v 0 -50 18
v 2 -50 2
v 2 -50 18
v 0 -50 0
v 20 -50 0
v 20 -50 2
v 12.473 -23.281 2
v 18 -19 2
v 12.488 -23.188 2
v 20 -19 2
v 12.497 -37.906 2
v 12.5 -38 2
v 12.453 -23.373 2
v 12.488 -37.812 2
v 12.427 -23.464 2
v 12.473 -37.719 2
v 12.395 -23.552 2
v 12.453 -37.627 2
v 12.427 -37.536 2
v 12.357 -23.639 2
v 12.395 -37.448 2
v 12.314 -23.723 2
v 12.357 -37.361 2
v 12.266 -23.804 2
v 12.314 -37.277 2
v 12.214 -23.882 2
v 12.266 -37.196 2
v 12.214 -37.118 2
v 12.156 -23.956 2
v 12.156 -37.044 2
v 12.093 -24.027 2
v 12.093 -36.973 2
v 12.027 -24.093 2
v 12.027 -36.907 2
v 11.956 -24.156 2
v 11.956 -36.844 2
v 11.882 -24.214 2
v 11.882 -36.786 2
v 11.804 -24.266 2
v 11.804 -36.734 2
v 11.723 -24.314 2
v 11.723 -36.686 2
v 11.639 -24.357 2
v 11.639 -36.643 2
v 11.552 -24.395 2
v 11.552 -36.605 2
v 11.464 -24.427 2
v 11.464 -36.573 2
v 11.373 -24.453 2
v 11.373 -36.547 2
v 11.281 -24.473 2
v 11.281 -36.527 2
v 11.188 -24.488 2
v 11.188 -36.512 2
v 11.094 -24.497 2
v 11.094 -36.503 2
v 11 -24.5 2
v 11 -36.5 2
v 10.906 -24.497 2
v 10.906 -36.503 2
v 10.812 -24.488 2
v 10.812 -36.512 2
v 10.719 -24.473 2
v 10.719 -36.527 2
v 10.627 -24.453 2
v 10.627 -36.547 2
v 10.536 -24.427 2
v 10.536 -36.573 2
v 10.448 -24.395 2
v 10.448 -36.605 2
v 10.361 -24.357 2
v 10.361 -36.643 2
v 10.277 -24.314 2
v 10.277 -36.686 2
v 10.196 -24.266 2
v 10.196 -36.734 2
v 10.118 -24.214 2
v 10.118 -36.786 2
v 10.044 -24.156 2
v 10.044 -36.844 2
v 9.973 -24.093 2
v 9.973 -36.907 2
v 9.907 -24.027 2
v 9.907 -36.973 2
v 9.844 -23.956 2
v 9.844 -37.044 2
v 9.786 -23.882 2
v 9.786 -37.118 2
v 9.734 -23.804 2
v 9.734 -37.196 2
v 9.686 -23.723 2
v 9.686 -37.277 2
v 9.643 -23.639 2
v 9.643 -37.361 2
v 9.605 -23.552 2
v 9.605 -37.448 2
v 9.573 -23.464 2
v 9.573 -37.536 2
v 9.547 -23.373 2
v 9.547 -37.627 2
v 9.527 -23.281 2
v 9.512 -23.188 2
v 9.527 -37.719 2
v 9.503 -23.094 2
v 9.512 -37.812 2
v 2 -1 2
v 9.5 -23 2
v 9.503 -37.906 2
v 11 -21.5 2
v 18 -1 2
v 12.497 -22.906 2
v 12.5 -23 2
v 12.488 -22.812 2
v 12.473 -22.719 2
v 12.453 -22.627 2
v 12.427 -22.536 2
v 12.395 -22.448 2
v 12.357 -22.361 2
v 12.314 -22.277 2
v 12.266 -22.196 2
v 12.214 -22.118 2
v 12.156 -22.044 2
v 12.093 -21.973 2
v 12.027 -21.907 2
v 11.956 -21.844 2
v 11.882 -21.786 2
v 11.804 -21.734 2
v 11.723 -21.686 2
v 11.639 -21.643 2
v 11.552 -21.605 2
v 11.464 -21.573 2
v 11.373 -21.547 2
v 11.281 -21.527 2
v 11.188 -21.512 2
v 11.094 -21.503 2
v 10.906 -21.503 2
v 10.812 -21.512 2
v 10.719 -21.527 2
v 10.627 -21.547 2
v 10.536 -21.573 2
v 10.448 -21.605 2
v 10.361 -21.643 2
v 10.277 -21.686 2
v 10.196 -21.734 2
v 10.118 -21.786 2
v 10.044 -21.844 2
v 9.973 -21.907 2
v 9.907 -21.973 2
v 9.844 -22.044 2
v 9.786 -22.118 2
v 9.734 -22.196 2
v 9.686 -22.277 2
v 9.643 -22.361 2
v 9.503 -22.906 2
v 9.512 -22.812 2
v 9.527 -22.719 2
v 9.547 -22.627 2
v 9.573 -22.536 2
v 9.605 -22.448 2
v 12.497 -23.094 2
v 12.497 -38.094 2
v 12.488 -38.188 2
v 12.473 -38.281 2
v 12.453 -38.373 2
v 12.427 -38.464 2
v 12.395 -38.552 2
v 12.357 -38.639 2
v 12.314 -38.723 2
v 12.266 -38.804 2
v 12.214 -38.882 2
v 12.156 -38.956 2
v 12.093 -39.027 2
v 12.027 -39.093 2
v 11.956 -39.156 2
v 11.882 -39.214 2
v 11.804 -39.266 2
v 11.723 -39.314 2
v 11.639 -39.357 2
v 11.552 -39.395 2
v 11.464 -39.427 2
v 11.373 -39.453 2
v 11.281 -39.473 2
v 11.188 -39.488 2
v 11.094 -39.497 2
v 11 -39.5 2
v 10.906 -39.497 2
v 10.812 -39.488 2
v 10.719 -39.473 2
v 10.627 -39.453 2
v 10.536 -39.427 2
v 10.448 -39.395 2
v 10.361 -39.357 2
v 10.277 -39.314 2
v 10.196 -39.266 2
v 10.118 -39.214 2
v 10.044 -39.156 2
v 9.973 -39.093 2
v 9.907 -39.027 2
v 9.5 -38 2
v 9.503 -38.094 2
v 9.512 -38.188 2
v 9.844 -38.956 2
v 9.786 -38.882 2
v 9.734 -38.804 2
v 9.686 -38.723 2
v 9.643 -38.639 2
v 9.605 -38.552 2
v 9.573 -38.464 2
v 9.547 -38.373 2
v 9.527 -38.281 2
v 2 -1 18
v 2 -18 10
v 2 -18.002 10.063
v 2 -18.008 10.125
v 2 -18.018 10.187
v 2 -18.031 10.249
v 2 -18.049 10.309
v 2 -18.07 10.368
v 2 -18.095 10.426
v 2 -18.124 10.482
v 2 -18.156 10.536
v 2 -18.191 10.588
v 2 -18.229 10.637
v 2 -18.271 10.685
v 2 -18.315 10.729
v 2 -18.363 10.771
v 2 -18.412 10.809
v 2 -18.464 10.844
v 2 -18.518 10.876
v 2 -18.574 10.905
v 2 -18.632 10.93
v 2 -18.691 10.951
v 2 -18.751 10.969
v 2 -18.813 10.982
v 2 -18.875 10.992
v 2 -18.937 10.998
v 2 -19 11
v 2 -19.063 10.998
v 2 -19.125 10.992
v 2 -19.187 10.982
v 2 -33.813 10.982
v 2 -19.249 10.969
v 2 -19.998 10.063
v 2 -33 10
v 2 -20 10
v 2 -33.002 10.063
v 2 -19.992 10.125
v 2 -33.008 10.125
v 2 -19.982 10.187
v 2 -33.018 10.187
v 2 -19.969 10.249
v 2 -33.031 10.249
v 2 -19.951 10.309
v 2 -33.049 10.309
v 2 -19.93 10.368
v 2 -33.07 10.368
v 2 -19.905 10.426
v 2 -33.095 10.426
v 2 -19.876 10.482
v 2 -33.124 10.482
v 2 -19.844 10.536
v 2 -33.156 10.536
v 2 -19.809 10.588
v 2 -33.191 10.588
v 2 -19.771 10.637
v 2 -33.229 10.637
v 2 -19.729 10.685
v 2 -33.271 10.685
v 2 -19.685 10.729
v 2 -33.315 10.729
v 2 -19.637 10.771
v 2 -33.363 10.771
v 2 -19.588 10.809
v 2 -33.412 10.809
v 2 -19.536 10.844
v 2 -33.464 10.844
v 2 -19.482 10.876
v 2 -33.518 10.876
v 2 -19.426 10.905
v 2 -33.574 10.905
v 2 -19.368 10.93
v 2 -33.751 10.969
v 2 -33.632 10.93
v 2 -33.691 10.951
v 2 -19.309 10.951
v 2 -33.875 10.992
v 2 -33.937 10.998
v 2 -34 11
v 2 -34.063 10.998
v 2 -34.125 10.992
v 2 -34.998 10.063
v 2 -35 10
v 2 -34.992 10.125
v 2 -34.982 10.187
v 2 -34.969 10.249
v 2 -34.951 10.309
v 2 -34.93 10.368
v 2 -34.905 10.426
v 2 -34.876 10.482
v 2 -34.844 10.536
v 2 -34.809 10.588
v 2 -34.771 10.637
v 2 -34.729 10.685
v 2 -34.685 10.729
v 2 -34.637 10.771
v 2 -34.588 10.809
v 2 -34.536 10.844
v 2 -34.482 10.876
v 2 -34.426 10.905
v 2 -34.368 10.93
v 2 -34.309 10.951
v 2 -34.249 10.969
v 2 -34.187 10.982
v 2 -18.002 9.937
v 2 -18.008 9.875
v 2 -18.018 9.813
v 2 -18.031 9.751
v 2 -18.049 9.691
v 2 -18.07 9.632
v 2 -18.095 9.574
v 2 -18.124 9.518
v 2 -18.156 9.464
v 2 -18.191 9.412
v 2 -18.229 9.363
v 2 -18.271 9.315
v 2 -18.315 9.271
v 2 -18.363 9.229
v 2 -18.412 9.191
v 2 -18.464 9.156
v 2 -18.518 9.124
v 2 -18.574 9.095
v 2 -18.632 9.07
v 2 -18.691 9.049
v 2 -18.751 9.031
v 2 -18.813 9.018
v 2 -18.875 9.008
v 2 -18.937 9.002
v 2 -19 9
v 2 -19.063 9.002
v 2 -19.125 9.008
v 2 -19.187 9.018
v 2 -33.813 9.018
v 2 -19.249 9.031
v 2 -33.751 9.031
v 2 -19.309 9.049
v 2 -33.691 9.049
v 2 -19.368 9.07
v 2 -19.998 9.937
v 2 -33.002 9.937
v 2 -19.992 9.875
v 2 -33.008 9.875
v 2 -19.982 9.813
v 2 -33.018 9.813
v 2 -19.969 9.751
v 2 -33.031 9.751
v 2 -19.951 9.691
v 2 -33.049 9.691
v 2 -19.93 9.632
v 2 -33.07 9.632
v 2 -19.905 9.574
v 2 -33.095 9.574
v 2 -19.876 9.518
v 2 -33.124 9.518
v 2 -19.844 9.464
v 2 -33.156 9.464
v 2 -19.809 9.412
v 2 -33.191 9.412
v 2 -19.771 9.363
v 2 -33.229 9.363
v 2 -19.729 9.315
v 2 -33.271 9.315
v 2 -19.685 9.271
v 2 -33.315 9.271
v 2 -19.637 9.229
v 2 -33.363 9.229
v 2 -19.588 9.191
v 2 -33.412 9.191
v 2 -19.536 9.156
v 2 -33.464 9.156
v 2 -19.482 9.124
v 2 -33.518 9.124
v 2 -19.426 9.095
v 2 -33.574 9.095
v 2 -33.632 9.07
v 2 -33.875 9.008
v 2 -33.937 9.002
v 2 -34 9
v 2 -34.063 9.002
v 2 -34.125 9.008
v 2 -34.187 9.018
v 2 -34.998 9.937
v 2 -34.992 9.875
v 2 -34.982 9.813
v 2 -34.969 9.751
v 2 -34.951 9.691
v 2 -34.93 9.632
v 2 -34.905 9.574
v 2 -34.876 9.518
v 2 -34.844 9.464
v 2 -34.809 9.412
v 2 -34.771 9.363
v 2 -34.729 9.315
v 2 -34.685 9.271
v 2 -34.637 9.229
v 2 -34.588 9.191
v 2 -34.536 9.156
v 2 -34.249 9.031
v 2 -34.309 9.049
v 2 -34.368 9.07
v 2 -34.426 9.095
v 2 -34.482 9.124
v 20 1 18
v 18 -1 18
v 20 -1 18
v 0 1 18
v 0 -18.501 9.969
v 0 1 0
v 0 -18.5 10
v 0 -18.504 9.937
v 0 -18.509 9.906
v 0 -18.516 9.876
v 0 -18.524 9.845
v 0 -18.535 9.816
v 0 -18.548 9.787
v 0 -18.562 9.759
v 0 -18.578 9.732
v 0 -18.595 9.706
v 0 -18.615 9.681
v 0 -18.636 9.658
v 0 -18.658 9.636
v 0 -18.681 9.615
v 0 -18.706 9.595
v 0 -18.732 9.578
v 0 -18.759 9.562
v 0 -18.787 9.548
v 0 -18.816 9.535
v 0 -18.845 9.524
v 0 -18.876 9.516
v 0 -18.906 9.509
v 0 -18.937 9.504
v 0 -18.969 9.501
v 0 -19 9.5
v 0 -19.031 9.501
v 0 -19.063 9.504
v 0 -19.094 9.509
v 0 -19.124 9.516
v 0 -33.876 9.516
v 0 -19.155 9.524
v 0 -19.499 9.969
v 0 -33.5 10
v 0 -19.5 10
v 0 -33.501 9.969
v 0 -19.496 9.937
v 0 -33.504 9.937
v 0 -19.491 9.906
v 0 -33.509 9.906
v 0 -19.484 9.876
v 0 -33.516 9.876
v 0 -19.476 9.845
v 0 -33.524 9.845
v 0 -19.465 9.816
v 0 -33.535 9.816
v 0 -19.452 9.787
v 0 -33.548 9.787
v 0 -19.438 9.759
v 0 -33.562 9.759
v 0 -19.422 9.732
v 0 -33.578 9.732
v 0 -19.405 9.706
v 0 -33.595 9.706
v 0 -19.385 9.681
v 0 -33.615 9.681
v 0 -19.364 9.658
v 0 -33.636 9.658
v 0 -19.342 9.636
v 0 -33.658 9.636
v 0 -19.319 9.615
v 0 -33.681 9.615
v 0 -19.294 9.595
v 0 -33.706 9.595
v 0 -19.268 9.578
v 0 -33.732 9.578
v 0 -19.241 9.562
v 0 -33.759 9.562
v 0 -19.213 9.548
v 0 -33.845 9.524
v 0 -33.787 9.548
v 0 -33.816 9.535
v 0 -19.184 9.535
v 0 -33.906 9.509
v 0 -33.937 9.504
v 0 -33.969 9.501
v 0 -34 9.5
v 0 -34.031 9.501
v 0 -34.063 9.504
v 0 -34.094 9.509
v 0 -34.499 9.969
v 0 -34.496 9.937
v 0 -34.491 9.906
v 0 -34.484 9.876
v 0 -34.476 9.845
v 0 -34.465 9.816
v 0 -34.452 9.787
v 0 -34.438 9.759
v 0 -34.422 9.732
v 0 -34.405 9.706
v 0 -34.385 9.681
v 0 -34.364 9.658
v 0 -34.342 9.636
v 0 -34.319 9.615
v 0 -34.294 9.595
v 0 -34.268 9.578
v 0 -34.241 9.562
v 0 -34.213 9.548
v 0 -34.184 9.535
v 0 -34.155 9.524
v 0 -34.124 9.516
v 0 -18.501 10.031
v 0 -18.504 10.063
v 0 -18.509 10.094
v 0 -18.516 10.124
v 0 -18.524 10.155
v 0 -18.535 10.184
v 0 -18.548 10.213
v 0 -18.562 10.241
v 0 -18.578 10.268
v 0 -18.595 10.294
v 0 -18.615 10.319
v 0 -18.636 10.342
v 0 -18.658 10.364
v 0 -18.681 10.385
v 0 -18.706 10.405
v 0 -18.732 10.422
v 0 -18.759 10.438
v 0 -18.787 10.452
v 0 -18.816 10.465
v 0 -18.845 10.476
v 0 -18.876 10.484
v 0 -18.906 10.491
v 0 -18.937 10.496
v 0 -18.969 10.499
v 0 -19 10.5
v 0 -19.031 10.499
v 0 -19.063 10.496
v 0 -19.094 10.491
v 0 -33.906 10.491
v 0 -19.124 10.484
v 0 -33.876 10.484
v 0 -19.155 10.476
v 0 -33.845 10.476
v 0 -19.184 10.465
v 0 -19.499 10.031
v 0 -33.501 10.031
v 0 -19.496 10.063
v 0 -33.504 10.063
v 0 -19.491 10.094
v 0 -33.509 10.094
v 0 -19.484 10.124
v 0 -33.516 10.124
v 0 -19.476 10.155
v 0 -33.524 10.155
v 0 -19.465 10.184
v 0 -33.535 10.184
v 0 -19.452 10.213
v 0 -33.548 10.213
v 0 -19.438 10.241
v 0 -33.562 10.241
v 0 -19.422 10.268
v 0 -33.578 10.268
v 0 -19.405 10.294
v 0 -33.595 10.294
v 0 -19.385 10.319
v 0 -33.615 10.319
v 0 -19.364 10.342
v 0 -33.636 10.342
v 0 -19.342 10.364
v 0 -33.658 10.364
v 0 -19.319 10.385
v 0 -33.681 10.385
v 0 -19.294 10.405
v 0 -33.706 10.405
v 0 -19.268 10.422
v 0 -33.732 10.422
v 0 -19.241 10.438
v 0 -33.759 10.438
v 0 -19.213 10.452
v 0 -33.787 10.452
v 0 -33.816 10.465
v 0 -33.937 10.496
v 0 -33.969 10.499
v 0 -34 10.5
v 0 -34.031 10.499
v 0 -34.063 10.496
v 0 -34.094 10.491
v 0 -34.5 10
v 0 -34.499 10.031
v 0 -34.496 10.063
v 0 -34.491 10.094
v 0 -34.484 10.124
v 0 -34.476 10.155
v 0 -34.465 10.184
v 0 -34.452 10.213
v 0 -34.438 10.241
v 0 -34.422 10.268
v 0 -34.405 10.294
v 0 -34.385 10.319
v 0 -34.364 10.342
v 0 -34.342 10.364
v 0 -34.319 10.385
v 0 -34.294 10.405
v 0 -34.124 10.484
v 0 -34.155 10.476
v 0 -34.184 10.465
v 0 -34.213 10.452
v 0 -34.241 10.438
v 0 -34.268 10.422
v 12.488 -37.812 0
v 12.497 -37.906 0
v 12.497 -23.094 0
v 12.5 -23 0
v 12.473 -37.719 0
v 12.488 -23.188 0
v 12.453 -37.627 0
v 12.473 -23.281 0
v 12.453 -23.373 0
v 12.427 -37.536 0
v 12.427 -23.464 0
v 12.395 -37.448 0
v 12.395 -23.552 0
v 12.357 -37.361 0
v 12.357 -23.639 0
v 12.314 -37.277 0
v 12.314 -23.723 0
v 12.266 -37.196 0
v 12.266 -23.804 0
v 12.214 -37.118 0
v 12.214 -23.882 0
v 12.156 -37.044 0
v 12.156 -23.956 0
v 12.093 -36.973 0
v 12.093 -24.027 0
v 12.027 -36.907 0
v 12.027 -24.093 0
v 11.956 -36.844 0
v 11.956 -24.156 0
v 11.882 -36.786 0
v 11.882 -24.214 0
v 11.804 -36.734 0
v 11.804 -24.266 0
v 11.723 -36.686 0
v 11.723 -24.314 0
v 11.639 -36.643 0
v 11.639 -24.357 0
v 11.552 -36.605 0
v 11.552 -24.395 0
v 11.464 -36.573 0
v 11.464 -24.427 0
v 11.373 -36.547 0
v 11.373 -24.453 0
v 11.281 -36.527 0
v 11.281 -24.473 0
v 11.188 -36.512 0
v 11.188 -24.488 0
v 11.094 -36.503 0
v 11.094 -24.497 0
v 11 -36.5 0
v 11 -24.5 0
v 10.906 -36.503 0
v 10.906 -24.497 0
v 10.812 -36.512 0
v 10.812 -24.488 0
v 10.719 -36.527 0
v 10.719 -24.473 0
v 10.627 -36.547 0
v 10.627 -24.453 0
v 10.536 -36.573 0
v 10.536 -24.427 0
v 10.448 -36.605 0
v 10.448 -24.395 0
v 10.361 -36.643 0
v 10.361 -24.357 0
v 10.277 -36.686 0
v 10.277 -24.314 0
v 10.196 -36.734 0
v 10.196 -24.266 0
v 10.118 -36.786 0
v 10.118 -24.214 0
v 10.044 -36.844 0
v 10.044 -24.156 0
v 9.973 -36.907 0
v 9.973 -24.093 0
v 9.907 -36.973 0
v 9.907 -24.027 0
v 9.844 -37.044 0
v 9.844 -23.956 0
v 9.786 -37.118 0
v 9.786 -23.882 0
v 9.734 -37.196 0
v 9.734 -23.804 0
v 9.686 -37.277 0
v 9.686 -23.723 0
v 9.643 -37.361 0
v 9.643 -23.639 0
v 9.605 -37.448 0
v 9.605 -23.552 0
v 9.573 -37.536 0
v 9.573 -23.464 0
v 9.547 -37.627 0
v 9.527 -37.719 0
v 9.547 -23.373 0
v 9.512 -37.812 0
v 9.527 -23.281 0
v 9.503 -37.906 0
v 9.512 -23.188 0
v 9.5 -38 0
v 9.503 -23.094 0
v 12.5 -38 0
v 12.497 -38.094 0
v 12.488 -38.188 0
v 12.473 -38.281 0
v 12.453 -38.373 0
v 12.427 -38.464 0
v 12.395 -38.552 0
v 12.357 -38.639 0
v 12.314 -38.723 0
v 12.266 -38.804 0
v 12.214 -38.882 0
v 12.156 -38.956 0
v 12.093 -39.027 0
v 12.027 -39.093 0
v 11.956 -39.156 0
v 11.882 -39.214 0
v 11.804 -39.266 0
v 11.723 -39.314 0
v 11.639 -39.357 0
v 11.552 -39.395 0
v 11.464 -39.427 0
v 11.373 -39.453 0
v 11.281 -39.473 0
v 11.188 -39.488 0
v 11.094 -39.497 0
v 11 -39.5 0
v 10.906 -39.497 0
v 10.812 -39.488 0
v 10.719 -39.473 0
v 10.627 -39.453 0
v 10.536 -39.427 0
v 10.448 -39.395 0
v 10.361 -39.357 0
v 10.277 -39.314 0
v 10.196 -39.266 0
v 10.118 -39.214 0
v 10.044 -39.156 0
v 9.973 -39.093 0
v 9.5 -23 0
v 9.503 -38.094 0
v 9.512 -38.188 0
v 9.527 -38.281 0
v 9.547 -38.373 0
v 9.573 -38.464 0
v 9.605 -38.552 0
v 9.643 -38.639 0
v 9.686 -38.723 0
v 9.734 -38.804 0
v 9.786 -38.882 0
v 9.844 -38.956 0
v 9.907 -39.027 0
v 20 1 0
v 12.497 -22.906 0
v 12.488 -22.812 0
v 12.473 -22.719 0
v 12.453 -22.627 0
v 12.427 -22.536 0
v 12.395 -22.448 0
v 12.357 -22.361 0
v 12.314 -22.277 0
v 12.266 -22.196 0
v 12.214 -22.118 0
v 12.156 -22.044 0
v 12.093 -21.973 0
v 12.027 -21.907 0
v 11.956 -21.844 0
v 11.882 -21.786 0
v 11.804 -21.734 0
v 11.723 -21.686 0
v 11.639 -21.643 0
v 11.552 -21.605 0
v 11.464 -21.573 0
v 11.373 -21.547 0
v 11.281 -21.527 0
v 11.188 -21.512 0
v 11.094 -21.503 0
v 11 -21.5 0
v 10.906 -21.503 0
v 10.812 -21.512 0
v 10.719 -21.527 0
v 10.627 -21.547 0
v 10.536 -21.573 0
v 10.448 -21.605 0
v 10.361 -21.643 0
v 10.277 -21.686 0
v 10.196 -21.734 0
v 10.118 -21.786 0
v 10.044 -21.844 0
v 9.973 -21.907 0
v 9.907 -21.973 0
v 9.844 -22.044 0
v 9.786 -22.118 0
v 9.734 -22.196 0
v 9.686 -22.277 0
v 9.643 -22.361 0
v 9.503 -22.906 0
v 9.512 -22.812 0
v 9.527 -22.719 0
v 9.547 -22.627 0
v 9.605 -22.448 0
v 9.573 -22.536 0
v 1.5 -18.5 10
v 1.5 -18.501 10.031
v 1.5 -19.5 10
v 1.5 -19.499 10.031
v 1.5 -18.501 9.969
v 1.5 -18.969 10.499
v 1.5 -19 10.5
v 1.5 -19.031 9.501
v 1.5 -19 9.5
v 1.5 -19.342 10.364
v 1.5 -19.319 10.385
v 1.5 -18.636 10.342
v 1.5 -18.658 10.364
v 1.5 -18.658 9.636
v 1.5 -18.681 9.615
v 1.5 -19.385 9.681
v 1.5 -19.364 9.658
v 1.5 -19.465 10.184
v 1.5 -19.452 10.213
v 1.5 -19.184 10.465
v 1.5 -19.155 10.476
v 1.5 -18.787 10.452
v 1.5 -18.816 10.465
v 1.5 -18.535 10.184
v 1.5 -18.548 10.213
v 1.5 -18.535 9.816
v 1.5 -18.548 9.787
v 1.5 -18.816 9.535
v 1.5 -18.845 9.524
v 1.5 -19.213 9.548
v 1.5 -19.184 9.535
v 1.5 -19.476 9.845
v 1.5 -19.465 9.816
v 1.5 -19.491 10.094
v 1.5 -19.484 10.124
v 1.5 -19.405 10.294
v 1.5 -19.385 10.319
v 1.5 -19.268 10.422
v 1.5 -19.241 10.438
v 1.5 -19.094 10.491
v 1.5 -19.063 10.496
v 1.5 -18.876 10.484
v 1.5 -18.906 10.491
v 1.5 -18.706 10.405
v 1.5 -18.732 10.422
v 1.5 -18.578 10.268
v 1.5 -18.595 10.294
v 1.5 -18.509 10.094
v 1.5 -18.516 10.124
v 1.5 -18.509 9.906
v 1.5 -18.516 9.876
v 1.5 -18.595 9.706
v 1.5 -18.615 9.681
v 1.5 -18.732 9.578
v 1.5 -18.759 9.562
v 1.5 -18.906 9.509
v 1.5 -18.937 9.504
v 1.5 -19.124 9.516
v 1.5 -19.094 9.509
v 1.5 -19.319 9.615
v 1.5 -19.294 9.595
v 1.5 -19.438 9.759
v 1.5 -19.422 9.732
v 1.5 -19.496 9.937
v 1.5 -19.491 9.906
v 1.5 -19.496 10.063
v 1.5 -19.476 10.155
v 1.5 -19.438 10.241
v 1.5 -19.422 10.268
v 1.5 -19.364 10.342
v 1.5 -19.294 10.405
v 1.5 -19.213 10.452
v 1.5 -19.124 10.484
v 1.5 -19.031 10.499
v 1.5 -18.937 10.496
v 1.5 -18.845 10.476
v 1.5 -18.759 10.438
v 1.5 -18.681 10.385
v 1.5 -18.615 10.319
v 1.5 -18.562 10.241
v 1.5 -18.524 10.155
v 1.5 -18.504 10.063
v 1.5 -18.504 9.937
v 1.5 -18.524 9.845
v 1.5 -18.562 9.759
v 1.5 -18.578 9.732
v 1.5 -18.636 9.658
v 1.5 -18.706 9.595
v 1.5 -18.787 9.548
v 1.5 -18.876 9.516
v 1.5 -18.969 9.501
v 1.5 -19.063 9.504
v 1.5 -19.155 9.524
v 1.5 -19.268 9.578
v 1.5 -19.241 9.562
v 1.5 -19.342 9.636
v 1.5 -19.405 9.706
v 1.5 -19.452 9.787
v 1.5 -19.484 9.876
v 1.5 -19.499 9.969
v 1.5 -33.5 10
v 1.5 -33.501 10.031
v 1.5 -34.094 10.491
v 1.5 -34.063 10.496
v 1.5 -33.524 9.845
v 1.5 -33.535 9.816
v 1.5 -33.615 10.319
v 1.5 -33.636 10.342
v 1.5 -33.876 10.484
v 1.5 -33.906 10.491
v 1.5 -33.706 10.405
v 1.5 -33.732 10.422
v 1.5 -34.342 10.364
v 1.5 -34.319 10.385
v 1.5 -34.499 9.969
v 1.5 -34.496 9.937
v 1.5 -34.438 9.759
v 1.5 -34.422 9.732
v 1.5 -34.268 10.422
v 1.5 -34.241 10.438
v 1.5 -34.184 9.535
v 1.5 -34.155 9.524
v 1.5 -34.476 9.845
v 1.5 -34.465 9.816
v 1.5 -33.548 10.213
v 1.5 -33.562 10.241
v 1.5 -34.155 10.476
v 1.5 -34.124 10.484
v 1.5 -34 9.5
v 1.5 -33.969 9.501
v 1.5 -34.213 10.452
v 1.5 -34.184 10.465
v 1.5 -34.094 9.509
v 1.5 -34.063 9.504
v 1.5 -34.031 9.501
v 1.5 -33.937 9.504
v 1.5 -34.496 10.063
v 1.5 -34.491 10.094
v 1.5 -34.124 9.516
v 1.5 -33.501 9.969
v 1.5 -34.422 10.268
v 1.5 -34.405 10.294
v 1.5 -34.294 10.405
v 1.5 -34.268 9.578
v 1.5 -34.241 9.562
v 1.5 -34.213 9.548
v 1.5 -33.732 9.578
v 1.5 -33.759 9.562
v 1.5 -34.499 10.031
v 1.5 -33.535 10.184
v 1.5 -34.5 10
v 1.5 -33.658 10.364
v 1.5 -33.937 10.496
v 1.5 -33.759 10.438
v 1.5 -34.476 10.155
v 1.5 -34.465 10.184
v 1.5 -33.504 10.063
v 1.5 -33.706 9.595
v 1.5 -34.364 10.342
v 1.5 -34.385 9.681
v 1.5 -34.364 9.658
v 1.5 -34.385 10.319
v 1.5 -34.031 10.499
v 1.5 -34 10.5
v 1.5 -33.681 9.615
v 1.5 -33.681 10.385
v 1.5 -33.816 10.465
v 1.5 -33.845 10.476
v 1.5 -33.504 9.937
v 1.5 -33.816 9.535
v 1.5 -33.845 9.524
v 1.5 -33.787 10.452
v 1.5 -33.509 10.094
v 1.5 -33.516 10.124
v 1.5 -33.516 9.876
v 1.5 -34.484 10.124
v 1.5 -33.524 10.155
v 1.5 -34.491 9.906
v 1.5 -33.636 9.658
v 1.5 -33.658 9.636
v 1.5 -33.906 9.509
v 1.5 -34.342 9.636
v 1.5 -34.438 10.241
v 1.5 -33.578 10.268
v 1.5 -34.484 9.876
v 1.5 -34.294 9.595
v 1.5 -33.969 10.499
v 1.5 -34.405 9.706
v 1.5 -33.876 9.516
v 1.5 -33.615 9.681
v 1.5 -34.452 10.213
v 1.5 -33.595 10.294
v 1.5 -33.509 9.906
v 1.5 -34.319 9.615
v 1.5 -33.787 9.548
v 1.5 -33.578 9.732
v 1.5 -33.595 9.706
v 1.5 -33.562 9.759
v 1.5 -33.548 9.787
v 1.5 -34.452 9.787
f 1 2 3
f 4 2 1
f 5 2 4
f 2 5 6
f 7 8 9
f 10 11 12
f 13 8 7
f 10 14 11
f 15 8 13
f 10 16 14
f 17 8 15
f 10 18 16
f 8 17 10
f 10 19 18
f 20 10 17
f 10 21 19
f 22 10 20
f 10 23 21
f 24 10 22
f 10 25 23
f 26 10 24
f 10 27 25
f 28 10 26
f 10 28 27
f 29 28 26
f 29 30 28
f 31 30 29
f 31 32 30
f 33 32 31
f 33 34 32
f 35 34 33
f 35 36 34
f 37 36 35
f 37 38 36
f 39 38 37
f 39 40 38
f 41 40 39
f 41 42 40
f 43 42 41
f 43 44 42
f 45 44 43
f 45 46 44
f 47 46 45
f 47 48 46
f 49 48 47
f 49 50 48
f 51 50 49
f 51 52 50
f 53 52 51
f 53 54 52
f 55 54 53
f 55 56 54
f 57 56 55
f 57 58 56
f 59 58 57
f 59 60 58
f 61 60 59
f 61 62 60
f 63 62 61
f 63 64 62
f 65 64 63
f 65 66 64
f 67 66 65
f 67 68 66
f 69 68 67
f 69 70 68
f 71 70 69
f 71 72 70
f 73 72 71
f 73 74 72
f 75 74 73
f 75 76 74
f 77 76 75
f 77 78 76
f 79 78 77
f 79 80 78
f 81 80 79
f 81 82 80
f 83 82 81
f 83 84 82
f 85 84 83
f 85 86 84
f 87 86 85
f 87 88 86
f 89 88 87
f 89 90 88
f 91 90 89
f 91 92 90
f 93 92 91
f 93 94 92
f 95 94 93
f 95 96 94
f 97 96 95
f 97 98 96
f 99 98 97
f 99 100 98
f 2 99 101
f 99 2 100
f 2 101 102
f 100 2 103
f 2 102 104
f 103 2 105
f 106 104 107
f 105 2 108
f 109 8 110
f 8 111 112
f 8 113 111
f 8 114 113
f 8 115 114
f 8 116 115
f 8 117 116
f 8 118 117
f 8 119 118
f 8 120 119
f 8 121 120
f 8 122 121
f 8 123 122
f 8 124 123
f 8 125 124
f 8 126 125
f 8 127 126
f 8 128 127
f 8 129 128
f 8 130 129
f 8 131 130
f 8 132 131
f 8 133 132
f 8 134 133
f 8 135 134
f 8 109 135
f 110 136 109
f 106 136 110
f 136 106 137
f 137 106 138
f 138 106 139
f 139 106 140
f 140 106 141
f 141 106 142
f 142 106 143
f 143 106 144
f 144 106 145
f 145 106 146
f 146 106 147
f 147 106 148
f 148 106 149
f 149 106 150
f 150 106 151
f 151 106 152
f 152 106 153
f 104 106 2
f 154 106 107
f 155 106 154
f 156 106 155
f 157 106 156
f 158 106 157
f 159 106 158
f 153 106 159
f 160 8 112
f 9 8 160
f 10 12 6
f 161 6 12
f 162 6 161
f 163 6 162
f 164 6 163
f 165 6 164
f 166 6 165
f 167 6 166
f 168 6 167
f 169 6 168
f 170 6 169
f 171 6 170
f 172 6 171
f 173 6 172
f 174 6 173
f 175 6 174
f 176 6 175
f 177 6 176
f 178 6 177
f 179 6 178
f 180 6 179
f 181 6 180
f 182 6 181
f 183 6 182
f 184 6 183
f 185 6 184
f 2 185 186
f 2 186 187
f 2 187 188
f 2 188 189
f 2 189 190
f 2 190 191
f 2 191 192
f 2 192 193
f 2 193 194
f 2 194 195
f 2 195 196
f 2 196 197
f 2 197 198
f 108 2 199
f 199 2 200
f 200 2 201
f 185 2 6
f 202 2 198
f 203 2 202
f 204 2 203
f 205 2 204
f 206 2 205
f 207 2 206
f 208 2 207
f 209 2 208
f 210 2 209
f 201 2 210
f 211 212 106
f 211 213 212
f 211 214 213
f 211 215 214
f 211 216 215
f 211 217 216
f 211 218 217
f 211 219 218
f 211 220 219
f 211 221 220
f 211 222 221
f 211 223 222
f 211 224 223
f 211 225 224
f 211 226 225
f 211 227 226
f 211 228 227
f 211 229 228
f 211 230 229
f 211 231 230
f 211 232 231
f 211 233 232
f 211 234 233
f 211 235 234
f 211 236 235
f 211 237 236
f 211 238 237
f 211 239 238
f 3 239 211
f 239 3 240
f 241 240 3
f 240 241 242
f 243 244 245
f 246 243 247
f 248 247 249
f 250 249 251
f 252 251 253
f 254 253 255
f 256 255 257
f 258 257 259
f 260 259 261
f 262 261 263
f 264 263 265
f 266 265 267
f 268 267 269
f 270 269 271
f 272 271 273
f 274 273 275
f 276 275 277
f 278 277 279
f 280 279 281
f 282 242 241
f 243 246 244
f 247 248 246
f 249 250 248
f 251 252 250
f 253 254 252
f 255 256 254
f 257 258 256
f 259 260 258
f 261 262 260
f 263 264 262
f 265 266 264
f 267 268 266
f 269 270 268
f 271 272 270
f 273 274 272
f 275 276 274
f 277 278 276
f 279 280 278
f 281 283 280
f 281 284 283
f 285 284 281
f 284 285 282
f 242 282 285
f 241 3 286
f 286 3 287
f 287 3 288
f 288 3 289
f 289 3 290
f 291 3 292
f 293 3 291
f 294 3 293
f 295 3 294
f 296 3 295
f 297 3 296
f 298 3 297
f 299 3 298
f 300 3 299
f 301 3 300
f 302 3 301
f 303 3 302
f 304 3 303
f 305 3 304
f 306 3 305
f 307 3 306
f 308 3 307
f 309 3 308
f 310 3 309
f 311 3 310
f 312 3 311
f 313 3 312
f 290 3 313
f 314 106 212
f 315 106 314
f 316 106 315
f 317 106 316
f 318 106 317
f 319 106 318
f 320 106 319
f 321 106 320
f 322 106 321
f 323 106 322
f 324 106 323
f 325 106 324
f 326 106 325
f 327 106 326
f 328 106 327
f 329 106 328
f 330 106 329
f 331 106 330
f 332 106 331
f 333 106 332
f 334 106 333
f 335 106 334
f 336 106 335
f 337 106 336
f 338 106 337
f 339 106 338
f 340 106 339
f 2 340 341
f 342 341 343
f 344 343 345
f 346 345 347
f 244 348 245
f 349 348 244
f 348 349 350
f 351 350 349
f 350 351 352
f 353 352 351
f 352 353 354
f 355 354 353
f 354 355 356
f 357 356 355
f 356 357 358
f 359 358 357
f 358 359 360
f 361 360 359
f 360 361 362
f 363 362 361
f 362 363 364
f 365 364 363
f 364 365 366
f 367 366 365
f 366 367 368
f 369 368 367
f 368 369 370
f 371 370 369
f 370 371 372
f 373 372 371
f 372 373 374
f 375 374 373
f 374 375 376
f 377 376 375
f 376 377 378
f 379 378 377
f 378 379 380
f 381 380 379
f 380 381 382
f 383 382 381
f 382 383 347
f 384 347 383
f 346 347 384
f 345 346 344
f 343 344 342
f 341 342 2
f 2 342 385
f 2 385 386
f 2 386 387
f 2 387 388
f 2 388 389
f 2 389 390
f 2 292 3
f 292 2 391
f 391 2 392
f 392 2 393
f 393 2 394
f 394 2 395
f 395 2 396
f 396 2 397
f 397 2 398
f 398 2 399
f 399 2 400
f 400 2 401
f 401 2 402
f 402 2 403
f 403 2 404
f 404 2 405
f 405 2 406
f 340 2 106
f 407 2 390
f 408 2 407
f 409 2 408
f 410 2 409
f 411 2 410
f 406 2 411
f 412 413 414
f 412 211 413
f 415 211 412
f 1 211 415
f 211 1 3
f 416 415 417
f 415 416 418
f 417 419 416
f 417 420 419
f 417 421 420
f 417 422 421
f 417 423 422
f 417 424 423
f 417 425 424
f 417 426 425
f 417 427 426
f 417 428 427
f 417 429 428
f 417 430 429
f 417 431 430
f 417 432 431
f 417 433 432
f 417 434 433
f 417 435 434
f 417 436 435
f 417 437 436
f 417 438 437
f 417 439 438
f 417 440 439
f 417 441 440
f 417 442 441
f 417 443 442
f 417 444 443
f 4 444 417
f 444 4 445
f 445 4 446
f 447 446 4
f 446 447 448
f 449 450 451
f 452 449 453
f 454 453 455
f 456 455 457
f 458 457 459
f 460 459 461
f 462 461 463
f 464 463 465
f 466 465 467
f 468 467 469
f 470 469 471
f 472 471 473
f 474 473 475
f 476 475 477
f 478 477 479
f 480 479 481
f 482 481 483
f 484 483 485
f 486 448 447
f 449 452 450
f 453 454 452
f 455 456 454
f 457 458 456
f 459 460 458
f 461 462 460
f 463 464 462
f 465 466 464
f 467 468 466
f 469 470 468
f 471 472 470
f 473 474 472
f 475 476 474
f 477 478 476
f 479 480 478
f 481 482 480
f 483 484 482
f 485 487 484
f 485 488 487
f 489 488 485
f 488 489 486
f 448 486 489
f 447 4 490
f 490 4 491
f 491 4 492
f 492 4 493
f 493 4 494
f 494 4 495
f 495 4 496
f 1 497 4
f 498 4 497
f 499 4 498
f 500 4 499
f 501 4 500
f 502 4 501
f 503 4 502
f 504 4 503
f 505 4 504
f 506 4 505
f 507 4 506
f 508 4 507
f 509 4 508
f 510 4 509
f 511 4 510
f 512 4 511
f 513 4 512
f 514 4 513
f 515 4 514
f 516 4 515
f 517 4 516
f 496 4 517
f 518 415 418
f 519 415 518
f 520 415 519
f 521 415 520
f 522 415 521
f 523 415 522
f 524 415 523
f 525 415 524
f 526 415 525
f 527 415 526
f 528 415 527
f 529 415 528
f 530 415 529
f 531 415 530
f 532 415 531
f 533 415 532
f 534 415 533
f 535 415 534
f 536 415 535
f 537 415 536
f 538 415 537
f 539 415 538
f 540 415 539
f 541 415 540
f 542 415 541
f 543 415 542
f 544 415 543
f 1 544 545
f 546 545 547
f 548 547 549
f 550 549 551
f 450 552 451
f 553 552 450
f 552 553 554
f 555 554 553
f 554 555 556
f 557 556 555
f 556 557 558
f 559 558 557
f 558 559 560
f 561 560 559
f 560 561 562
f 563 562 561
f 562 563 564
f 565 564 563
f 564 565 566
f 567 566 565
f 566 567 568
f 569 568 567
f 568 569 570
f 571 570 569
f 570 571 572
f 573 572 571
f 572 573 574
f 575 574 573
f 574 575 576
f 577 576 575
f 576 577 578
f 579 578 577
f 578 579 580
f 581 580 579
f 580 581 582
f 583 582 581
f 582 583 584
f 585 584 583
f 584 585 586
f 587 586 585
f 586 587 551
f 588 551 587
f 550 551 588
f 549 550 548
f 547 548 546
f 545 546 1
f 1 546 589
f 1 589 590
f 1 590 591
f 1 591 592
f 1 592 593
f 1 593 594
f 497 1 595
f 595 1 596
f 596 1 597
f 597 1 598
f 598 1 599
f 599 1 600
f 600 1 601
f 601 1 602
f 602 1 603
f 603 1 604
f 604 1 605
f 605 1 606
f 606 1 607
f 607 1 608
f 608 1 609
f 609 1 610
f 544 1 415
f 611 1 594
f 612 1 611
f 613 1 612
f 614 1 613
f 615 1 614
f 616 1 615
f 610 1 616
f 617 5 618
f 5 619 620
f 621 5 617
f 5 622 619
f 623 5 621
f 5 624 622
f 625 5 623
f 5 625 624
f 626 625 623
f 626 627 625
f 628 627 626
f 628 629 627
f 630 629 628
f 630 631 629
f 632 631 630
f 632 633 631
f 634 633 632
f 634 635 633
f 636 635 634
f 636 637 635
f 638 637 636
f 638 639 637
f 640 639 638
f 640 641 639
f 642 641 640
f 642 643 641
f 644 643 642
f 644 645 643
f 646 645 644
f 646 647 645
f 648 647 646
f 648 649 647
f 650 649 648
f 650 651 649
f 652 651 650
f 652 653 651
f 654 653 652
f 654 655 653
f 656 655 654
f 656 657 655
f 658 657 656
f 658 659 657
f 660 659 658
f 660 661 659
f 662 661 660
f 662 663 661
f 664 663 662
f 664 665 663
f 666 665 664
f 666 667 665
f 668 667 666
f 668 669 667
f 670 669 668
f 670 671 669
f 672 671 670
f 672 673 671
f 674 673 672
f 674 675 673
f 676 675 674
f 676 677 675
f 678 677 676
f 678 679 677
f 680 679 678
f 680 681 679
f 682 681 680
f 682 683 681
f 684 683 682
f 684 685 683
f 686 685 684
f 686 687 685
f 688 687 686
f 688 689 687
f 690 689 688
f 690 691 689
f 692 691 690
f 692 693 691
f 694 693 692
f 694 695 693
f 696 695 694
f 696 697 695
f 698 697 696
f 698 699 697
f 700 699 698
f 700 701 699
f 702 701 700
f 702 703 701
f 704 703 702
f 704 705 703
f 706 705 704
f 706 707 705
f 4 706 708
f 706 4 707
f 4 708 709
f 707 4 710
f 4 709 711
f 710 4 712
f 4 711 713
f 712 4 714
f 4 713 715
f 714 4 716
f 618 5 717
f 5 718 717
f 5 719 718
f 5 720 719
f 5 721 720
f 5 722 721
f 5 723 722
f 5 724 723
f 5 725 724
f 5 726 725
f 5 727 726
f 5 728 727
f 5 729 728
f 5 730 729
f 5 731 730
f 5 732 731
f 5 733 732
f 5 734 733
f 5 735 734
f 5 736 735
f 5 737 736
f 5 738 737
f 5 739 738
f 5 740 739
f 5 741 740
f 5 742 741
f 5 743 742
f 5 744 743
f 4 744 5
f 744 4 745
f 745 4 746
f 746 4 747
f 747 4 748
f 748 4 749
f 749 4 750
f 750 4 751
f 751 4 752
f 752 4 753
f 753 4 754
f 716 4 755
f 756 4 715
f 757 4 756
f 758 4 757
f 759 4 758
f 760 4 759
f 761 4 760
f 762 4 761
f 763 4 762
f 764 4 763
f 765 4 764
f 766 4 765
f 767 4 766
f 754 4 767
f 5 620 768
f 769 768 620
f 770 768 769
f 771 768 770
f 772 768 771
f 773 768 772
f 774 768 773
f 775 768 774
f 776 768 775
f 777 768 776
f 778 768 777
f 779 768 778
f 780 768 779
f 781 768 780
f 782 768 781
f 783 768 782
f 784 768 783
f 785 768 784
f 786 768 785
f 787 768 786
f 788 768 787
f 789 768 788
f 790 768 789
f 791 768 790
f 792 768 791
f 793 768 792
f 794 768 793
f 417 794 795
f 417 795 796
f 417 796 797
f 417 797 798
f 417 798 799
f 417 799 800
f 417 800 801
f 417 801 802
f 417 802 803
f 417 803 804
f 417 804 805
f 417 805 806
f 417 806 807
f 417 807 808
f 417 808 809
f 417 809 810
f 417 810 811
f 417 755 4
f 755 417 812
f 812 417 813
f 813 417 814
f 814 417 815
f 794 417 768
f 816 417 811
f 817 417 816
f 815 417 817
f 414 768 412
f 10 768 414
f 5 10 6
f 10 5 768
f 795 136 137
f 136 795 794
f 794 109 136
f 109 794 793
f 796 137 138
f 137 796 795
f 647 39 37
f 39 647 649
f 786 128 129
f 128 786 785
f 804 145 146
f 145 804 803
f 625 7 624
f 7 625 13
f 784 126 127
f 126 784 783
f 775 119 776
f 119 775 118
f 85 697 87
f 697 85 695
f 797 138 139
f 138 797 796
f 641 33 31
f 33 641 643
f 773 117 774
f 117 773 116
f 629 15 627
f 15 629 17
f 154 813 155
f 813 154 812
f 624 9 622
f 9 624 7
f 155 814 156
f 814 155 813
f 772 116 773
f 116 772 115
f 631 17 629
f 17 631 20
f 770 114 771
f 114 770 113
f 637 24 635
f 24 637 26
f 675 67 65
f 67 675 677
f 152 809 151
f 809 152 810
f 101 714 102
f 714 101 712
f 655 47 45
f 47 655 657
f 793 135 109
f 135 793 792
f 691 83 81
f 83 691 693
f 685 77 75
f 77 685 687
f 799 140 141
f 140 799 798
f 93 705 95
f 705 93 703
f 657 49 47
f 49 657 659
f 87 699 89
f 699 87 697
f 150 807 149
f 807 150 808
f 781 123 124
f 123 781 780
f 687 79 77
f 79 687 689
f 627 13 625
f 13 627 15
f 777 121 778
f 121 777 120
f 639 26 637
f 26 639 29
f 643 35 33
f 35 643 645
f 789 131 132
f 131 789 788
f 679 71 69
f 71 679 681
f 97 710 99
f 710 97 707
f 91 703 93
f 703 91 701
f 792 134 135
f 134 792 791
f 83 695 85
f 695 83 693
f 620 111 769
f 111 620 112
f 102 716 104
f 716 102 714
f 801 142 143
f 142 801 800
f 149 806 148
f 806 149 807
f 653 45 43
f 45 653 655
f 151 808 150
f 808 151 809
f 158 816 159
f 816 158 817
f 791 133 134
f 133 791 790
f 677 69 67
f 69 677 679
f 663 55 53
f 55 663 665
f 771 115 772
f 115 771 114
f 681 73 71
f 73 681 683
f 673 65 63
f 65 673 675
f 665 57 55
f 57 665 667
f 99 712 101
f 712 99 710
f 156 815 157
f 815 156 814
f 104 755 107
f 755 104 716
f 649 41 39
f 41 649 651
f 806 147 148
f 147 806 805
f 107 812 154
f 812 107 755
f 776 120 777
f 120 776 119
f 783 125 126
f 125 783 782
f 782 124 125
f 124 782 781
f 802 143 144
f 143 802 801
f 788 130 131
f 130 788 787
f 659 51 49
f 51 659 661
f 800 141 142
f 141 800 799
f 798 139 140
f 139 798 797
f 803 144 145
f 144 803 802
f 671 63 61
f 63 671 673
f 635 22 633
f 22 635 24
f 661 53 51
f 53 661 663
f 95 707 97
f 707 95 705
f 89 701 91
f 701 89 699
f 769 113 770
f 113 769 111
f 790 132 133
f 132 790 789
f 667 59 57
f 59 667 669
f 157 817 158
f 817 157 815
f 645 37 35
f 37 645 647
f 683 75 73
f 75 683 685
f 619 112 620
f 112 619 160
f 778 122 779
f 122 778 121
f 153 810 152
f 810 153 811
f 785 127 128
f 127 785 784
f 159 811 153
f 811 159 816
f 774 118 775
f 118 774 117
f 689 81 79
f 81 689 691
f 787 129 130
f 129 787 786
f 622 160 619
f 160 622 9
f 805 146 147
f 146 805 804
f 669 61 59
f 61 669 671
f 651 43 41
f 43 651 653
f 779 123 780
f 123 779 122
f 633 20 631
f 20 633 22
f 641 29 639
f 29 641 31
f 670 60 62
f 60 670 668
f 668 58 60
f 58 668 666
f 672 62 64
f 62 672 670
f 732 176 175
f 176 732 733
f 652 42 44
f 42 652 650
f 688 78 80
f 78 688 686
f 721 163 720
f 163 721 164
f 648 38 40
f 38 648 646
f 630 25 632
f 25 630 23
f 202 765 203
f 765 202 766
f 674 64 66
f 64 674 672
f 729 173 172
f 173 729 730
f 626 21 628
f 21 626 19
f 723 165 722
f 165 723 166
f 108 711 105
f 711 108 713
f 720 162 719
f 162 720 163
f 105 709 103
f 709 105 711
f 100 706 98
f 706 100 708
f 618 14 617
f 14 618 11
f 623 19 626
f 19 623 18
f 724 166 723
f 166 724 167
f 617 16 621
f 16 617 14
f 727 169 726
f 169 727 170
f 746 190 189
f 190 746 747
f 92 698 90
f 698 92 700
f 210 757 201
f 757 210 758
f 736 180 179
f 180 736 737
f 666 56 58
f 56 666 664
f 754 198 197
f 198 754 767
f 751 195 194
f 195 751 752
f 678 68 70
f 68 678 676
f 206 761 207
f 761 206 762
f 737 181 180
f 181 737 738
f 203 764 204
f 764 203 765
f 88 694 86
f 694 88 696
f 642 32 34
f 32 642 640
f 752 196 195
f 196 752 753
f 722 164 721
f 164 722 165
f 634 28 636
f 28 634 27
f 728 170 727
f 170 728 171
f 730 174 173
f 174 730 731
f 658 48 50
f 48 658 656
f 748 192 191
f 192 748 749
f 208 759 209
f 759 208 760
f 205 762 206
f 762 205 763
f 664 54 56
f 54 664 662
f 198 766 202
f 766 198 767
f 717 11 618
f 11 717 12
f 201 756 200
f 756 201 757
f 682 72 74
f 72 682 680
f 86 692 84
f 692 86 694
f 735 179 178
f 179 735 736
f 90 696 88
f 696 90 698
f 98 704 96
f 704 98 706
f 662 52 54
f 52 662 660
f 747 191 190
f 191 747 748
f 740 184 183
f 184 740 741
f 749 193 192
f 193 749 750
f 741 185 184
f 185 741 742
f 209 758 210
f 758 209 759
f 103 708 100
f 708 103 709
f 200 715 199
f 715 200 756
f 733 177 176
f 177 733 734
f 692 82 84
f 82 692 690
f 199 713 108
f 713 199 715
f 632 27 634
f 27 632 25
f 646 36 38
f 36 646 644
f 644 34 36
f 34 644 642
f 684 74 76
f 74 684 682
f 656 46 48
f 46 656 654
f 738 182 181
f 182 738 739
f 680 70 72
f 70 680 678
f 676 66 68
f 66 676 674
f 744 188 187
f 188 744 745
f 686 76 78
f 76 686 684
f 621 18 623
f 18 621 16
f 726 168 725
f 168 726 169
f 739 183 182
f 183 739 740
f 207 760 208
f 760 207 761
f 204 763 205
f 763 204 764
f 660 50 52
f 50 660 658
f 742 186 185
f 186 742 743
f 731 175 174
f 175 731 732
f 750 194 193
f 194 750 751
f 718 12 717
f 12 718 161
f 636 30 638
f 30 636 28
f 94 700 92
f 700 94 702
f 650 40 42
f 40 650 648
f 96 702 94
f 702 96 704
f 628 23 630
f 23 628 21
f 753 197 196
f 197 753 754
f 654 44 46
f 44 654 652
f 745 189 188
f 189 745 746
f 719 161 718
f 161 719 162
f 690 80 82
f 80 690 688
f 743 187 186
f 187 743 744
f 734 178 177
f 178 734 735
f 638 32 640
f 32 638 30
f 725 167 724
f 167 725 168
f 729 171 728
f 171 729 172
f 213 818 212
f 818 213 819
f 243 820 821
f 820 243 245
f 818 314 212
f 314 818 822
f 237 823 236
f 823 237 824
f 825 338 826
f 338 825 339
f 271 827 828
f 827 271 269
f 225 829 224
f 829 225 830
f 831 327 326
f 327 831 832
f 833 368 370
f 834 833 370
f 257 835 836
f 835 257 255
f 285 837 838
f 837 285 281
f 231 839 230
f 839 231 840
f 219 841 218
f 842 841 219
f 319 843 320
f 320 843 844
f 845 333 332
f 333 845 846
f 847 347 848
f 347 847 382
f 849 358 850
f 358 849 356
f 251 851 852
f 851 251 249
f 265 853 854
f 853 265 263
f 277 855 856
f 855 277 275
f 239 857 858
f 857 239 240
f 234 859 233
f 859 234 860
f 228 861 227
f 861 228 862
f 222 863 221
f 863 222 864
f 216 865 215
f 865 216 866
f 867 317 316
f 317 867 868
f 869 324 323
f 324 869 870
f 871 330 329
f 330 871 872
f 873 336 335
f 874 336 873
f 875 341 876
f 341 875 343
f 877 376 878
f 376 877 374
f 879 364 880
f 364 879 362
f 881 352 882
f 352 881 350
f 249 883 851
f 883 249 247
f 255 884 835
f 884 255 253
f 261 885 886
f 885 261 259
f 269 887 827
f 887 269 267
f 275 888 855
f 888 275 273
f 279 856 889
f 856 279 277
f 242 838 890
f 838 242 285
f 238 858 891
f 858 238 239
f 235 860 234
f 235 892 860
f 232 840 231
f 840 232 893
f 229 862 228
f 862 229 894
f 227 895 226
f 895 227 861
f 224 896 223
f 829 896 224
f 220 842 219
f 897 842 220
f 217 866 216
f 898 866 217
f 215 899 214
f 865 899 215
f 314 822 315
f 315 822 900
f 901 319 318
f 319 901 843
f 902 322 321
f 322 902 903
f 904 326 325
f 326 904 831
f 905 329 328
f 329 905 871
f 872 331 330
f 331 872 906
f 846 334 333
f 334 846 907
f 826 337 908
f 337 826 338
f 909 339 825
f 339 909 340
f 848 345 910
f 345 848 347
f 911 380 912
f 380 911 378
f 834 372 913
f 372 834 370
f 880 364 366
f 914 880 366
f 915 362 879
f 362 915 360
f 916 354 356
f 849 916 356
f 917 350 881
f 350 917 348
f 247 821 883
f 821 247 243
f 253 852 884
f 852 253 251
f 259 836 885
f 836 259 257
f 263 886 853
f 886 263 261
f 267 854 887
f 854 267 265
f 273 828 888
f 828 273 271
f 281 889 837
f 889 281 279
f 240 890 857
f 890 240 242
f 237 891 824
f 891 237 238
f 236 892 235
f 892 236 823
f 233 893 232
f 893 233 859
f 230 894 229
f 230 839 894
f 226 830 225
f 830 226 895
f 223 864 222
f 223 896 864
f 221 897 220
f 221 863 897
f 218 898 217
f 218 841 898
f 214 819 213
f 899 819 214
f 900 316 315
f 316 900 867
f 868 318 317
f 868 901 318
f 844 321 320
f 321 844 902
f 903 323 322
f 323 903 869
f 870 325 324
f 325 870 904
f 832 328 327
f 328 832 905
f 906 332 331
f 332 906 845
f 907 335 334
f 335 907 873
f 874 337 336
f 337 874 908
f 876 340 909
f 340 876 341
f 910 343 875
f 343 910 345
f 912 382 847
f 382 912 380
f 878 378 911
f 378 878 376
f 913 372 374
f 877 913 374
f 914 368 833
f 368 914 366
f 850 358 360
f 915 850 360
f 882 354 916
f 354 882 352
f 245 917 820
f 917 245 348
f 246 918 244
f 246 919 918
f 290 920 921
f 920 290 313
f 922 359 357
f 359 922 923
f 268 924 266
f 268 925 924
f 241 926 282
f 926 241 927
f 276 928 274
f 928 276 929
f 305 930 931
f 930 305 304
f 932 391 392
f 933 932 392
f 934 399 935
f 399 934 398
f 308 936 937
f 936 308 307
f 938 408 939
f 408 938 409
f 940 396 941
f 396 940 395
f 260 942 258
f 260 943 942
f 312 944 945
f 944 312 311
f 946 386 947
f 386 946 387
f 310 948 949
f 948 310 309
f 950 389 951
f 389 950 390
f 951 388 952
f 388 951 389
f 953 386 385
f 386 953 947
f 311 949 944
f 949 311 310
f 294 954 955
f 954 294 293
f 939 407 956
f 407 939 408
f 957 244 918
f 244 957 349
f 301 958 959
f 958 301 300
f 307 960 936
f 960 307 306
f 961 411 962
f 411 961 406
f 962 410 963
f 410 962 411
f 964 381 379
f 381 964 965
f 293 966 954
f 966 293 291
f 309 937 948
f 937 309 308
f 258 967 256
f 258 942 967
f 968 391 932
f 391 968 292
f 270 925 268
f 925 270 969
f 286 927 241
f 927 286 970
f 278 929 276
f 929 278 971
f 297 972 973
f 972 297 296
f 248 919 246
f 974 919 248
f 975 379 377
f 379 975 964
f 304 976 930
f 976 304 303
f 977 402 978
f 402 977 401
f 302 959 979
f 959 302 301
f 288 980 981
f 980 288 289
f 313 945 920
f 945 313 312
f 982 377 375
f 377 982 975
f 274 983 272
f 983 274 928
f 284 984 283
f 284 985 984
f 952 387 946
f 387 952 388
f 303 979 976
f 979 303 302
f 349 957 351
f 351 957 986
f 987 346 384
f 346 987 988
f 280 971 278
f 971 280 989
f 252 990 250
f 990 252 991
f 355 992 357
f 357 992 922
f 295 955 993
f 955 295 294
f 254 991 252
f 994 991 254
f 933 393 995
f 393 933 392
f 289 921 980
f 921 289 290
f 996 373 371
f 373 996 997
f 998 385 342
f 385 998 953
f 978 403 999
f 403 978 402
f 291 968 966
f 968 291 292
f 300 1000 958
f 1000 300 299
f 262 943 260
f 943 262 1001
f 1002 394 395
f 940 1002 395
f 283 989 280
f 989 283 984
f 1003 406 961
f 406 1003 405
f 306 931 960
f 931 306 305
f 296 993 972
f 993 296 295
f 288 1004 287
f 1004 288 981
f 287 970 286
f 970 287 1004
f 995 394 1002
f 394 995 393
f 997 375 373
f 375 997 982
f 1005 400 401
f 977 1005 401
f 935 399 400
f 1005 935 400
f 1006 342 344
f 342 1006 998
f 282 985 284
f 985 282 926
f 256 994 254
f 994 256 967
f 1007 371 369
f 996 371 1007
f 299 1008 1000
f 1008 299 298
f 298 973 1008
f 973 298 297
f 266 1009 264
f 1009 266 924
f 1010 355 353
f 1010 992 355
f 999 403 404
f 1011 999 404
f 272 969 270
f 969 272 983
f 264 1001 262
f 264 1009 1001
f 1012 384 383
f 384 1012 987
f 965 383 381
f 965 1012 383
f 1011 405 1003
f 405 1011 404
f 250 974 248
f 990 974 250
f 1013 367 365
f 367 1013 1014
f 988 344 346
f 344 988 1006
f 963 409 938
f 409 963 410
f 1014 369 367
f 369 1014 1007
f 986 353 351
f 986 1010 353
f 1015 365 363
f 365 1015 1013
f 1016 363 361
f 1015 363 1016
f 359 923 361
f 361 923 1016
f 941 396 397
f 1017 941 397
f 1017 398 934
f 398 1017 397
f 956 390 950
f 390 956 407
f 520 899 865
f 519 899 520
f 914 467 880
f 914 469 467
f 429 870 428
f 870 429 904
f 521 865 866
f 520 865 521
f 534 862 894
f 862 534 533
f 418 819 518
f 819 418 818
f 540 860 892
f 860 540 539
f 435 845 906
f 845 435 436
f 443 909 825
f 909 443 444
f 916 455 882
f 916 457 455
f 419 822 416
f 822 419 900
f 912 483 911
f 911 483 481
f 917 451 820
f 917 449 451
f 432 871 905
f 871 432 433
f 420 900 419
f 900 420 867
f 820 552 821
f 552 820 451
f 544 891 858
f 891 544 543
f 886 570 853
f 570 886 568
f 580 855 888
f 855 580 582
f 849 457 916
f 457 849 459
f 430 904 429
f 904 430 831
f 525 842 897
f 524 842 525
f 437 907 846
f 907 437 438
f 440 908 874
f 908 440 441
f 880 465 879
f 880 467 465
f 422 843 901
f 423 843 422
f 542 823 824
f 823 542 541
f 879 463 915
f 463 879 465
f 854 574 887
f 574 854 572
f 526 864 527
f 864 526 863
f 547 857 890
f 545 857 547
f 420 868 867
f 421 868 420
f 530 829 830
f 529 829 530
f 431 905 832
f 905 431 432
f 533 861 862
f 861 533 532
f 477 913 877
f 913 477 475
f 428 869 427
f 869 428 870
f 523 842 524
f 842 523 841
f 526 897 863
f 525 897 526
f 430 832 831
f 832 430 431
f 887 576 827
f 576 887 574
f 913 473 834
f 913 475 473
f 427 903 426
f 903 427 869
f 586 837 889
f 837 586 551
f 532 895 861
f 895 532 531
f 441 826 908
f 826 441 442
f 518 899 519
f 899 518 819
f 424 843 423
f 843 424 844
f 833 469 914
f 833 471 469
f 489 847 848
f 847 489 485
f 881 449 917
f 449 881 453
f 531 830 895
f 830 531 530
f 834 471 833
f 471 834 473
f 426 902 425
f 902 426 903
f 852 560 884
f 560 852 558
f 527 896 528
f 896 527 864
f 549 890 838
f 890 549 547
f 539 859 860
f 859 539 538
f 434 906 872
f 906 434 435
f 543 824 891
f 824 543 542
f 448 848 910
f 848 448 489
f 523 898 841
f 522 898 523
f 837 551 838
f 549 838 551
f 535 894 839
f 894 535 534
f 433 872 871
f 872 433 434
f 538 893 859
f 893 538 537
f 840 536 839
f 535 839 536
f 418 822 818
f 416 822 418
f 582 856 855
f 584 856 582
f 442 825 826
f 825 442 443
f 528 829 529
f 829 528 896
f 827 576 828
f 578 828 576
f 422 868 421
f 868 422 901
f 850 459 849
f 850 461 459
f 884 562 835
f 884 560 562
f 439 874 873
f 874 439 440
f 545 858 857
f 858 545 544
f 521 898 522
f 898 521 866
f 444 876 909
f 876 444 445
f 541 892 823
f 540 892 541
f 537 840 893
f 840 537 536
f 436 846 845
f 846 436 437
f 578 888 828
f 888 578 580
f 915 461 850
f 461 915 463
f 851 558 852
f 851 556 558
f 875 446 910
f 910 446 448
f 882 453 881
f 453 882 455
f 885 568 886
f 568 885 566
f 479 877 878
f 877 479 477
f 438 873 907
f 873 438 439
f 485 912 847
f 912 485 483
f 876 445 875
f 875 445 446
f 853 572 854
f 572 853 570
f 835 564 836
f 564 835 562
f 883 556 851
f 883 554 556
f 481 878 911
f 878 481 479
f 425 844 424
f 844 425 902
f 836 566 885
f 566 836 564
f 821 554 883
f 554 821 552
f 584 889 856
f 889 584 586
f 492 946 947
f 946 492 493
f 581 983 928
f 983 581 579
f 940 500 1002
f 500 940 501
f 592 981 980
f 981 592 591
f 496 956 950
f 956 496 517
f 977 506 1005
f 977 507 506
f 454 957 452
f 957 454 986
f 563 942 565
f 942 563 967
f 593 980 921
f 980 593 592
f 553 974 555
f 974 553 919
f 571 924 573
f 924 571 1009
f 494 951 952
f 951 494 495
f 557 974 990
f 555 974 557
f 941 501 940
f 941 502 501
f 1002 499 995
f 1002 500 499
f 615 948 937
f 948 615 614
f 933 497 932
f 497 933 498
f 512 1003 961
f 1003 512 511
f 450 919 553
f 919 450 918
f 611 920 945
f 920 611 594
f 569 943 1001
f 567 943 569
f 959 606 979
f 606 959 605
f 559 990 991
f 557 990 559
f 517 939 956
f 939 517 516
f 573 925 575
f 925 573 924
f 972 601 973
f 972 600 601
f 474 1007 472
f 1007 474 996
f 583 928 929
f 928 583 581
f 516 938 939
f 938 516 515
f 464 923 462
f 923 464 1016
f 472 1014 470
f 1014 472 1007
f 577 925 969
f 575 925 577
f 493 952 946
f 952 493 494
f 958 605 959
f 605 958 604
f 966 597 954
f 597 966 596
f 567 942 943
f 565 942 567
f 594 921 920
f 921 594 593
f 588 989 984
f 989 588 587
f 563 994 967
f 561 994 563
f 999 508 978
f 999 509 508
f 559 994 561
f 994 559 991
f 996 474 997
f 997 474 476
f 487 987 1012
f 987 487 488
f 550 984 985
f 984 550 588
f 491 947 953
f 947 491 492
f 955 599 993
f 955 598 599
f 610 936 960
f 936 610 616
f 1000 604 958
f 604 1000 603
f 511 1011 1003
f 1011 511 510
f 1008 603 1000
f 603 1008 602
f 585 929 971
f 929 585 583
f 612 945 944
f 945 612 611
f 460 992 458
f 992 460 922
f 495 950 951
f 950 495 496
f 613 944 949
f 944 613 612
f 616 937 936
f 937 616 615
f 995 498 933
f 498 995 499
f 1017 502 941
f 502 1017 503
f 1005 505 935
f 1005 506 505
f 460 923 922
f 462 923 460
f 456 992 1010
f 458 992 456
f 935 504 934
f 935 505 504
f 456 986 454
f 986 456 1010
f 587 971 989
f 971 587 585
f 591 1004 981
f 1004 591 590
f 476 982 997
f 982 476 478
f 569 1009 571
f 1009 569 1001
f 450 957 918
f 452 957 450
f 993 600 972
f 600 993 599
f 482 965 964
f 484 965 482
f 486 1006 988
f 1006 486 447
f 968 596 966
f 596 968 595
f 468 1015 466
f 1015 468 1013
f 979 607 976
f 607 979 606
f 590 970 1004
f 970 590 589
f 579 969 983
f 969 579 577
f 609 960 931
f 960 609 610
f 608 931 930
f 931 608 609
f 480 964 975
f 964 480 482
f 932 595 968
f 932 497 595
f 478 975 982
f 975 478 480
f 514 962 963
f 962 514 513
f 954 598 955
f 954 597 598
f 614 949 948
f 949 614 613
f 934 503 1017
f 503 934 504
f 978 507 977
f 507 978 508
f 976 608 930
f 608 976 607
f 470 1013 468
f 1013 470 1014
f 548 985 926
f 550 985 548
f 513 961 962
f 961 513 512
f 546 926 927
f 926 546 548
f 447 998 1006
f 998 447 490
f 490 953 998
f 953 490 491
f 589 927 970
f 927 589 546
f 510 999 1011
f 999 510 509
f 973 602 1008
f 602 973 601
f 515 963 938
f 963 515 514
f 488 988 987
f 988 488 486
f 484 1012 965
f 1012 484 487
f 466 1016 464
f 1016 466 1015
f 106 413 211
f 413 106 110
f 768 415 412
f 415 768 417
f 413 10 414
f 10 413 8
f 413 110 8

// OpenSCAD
w = 16;
h = 16;
wall = 2;
strike = 14;

rotate([90,0,0]) {
union() {
    difference() {
        linear_extrude(50) {
            polygon(points=[[0,0],[0,wall+h],[wall,wall+h],[wall,wall],[wall*2+w,wall],[wall*2+w,0]]);
        };
        translate([11,-1,2+7+strike]) {
            rotate([0,90,90]) {
                cylinder(5,1.5,1.5, $fn=100);
            }
        }
        translate([11,-1,2+7+15+strike]) {
            rotate([0,90,90]) {
                cylinder(5,1.5,1.5, $fn=100);
            }
        }
           translate([1,10,2+7+10]) {
            rotate([0,90,0]) {
                cylinder(5,0,5, $fn=100);
            }
        }
        translate([1,10,2+7+15+10]) {
            rotate([0,90,0]) {
                cylinder(5,0,5, $fn=100);
            }
        }
        
        translate([-1,10,2+7+10]) {
            rotate([0,90,0]) {
                cylinder(5,0.5,0.5, $fn=100);
            }
        }
        translate([-1,10,2+7+15+10]) {
            rotate([0,90,0]) {
                cylinder(5,0.5,0.5, $fn=100);
            }
        }
     
     

    }

    

    polygon(points=[[0,0],[0,wall+h],[wall,wall+h],[wall,wall],[wall+w,wall],[wall+w,0]]);
    translate([0,0,-1]) {
    cube([wall*2+w,wall+h,wall]);
    }

    translate([wall*2+w,wall,wall-1]) {
        rotate([0,270,0]) {
            linear_extrude(wall) {
                polygon(points=[
                    [0,0],
                    [wall+h,0],
                    [0,w]
                    ]);
            }
        }
    }
    
}
}
